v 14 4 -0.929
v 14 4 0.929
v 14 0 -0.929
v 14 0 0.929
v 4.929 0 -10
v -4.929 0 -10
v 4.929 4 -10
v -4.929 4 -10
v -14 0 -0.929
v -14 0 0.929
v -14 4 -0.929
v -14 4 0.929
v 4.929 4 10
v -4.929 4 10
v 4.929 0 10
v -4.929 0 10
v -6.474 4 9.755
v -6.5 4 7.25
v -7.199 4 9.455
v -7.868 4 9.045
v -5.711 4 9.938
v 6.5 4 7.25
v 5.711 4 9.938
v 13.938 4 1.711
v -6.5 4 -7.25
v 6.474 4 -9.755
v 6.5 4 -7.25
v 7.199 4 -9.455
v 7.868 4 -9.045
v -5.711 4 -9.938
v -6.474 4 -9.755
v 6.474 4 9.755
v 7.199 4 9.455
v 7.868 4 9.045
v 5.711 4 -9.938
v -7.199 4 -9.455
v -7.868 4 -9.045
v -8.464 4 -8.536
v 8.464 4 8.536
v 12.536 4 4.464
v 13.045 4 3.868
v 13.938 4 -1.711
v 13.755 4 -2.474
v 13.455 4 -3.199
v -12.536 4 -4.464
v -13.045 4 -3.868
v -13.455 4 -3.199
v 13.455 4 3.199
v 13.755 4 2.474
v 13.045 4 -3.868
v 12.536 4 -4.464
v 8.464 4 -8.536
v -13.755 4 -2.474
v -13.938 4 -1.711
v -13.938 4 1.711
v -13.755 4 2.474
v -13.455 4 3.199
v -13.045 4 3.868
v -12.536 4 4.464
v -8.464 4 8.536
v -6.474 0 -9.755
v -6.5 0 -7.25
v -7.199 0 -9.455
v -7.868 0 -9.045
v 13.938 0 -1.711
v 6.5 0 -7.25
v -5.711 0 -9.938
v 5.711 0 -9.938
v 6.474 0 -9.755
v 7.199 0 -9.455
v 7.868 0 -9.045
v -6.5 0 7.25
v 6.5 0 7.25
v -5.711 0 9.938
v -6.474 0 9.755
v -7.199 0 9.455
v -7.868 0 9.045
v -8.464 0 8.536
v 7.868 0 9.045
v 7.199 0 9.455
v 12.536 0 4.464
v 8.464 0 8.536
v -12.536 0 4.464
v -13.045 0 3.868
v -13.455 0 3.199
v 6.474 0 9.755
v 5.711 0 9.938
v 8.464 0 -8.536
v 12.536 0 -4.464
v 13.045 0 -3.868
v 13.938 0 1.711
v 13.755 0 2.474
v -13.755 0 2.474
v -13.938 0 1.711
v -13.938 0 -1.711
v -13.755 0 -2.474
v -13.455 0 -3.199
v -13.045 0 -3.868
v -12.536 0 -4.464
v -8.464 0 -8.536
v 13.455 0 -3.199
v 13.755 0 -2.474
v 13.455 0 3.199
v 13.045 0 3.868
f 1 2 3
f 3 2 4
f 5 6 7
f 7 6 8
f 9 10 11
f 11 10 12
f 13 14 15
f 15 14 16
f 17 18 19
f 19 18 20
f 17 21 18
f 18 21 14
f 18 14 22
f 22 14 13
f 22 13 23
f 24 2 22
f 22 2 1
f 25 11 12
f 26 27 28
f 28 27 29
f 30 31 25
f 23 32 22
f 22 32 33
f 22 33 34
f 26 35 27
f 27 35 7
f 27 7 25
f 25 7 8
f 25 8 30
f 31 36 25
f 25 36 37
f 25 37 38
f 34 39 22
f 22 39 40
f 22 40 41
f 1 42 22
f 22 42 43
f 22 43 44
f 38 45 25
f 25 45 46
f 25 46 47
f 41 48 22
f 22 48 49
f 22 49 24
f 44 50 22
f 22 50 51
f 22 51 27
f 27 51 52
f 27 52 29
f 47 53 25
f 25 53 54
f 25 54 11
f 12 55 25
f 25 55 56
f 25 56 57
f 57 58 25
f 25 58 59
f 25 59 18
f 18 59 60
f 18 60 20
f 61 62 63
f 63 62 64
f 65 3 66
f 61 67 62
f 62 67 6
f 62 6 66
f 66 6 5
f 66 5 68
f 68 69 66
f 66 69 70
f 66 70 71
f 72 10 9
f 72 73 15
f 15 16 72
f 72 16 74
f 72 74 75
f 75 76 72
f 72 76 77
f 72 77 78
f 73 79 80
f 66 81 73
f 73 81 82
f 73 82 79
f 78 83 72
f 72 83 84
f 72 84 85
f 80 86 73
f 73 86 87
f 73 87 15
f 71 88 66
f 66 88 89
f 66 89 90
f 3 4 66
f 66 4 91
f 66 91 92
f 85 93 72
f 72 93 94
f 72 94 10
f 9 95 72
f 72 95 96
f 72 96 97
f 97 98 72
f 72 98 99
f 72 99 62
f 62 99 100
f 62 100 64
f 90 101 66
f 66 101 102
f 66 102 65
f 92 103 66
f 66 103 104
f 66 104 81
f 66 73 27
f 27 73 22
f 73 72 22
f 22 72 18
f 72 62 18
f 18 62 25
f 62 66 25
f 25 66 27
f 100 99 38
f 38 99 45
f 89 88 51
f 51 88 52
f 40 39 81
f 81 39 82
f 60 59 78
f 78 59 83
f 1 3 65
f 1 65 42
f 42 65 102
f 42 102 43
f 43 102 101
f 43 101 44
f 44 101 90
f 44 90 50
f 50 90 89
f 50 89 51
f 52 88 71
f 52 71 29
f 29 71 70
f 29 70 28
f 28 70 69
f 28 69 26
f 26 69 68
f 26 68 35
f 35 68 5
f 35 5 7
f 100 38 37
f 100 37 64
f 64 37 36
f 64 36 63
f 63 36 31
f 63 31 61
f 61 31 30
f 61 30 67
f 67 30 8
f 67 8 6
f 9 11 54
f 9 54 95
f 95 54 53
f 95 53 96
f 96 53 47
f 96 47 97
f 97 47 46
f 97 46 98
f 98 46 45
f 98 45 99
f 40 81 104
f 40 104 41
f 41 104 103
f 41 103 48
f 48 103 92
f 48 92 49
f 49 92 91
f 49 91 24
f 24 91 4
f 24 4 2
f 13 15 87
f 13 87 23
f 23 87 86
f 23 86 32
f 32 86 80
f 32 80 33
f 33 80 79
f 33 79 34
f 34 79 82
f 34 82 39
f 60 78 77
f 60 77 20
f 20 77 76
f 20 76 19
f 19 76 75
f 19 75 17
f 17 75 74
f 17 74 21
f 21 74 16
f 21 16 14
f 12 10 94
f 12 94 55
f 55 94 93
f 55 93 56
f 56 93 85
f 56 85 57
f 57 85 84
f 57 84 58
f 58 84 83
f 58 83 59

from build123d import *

# Parameters (mm, degrees)
ESQUISSE1_W             = 28
ESQUISSE1_H             = 20
BOSS_EXTRU_1_DEPTH      = 4
ESQUISSE2_W             = 13
ESQUISSE2_H             = 14.5
ENL_V_MAT_EXTRU_1_DEPTH = 4
ENL_V_MAT_EXTRU_2_DEPTH = 4
CONG_2_R                = 5


with BuildPart() as part:
    # Esquisse1 → Boss.-Extru.1 (new body)
    with BuildSketch(Plane(origin=(0, 0, 0), x_dir=(1, 0, 0), z_dir=(0, 1, 0))):
        Rectangle(ESQUISSE1_W, ESQUISSE1_H)
    extrude(amount=BOSS_EXTRU_1_DEPTH)

    # Esquisse2 → Enlèv. mat.-Extru.1 (cut)
    with BuildSketch(Plane(origin=(0, 4, 0), x_dir=(1, 0, 0), z_dir=(0, 1, 0))):
        Rectangle(ESQUISSE2_W, ESQUISSE2_H)
    extrude(amount=-ENL_V_MAT_EXTRU_1_DEPTH, mode=Mode.SUBTRACT)

    # Esquisse3 → Enlèv. mat.-Extru.2 (cut)
    with BuildSketch(Plane(origin=(0, 4, 0), x_dir=(1, 0, 0), z_dir=(0, 1, 0))):
        Polygon((-14, 10), (-14, 3), (-7, 10), align=None)
        Polygon((14, 10), (7, 10), (14, 3), align=None)
        Polygon((14, -3), (7, -10), (14, -10), align=None)
        Polygon((-7, -10), (-14, -3), (-14, -10), align=None)
    extrude(amount=-ENL_V_MAT_EXTRU_2_DEPTH, mode=Mode.SUBTRACT)

    # Congé2
    cong_2_edges = [part.edges().sort_by_distance(p)[0] for p in [
        (-14, 2, 3),
        (-7, 2, 10),
        (7, 2, 10),
        (14, 2, 3),
        (14, 2, -3),
        (7, 2, -10),
        (-14, 2, -3),
        (-7, 2, -10),
    ]]
    fillet(cong_2_edges, radius=CONG_2_R)


solid = part.part
